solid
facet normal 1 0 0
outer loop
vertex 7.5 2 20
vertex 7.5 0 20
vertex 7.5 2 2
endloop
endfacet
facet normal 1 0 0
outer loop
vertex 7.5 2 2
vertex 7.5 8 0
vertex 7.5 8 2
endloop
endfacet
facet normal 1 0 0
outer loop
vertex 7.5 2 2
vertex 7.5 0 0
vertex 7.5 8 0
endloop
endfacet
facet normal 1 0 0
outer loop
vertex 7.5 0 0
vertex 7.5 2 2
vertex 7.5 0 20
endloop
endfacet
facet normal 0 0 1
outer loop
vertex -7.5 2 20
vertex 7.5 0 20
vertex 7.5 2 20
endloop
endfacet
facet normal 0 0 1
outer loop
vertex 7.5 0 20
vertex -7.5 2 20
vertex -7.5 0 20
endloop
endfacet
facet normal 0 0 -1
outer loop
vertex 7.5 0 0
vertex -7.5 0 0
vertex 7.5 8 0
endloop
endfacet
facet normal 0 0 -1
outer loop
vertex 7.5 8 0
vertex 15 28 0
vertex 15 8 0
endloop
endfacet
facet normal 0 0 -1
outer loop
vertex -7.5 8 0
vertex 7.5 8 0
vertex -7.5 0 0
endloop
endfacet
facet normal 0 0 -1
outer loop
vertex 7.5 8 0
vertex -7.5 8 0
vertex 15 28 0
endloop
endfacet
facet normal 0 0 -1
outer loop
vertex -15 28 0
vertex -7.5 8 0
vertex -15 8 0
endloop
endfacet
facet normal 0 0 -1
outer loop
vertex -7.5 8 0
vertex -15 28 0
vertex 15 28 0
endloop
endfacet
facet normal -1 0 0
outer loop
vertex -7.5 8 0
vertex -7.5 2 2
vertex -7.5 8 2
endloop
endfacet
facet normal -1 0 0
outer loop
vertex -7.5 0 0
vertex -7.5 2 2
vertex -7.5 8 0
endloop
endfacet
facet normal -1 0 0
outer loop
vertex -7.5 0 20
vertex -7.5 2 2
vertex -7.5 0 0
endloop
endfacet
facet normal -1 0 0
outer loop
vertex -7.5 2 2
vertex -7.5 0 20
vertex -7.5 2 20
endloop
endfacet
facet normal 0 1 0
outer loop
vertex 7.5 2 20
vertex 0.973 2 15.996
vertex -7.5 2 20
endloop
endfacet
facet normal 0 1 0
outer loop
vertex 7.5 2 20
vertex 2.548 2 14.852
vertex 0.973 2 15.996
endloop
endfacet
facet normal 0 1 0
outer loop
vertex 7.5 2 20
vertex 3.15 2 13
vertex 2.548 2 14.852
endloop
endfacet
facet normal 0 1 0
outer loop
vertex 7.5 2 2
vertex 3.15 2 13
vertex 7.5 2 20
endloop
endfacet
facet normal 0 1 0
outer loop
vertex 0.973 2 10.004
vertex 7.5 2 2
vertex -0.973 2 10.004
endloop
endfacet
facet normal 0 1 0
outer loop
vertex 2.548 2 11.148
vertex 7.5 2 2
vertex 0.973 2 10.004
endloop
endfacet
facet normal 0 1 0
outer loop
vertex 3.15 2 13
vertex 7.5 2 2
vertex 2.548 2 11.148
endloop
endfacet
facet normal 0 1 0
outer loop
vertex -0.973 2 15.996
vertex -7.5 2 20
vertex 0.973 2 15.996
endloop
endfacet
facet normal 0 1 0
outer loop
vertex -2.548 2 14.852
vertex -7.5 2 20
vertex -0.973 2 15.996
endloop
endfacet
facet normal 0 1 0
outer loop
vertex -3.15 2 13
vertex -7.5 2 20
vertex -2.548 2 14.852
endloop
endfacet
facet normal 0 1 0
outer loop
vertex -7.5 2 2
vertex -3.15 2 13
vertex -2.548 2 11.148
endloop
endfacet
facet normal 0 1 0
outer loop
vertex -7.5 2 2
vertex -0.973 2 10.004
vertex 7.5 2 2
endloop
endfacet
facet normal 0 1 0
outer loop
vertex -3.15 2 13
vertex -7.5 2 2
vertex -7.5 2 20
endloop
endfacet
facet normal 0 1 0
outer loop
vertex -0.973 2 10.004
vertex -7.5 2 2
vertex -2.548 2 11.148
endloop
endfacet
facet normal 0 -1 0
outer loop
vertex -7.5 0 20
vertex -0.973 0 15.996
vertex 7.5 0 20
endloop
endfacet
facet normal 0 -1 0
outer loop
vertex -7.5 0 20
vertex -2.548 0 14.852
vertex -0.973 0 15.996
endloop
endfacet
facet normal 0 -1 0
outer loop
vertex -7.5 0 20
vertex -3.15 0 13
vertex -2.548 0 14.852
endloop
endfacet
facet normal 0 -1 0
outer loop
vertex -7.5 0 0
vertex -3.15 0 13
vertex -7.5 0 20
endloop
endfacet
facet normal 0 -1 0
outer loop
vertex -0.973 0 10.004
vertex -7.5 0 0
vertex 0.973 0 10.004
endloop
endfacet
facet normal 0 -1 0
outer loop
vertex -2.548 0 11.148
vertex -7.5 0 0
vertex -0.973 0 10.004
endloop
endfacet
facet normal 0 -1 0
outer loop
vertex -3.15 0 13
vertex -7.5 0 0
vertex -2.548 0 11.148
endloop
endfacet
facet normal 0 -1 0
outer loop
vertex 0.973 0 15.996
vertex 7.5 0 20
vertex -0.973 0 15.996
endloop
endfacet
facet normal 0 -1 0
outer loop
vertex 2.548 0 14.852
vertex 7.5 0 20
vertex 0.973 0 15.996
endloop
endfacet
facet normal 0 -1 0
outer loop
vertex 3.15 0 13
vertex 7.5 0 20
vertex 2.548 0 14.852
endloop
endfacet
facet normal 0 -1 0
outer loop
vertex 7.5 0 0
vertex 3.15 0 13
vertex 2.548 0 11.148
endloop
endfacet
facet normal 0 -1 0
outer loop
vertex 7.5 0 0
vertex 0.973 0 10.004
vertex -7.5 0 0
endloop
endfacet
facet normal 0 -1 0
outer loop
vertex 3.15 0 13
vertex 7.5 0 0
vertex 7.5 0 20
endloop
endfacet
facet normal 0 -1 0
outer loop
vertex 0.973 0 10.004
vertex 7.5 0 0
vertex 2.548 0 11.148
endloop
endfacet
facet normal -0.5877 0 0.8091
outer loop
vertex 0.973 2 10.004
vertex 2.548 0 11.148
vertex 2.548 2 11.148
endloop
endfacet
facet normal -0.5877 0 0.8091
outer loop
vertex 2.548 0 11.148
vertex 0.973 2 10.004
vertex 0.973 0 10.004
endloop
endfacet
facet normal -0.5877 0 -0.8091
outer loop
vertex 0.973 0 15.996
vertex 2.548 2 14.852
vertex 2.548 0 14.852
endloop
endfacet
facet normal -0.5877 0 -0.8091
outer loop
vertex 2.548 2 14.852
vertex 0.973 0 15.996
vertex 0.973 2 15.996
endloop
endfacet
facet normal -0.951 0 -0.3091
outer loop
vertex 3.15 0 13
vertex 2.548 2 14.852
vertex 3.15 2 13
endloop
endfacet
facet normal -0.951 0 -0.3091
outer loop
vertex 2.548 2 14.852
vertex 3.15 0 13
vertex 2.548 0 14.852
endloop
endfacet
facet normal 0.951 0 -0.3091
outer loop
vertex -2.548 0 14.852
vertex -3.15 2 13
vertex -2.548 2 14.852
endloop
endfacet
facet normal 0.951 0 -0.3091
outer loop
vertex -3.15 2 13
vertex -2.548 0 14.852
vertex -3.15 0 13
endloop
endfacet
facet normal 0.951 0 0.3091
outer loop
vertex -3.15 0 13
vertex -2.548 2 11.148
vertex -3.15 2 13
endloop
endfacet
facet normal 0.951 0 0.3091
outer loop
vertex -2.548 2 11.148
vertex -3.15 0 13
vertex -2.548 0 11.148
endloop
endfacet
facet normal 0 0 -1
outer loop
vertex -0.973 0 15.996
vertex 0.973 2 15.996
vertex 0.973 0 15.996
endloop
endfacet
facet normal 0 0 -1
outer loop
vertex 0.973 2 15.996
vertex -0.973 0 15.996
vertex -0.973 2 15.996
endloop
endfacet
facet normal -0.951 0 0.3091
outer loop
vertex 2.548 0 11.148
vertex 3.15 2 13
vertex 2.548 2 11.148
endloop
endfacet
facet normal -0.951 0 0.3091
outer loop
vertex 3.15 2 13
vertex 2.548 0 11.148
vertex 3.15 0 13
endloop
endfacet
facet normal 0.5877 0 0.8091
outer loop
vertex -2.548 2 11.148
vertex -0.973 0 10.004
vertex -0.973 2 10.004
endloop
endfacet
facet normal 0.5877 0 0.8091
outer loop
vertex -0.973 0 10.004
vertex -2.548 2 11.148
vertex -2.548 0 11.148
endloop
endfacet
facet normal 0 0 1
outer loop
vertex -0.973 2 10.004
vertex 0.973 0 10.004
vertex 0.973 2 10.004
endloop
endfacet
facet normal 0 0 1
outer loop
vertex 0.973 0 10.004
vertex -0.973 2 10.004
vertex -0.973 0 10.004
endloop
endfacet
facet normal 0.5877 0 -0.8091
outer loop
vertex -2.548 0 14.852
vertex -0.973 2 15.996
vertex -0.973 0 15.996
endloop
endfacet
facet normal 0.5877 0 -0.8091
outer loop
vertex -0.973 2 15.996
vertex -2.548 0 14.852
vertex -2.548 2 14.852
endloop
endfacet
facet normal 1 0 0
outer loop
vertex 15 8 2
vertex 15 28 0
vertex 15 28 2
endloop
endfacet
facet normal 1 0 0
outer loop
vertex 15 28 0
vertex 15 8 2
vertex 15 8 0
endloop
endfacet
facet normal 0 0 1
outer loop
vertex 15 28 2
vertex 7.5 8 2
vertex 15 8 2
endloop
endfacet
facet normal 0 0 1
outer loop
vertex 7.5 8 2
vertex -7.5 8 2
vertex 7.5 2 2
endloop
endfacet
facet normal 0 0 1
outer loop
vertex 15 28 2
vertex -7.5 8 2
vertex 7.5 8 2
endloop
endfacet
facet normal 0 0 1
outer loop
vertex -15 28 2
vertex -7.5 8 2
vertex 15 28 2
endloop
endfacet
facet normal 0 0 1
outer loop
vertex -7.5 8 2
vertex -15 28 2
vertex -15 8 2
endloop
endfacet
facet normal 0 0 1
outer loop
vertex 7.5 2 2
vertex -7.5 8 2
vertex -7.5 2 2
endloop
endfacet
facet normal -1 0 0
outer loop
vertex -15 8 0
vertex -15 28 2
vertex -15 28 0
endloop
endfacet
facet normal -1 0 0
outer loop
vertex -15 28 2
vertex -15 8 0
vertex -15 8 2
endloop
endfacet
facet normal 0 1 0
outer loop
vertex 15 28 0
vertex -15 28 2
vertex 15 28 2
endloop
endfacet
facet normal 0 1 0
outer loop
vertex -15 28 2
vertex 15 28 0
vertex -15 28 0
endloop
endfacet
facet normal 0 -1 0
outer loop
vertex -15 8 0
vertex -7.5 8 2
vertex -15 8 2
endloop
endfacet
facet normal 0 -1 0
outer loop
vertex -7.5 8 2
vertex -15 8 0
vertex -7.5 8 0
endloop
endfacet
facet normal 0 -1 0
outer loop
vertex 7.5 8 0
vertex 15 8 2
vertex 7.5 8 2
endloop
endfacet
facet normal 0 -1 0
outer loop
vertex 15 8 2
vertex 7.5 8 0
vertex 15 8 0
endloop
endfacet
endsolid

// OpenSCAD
translate([-30/2, 8, 0]) cube([30,20, 2]);
translate([-15/2, 0, 0]) cube([15,20, 2]);
difference(){
translate([-15/2, 0, 0]) cube([15,2, 20]);
    
translate([0, 0, 13]) rotate([90, 0, 0])cylinder(d=6.3, h=10, center=true);
}
